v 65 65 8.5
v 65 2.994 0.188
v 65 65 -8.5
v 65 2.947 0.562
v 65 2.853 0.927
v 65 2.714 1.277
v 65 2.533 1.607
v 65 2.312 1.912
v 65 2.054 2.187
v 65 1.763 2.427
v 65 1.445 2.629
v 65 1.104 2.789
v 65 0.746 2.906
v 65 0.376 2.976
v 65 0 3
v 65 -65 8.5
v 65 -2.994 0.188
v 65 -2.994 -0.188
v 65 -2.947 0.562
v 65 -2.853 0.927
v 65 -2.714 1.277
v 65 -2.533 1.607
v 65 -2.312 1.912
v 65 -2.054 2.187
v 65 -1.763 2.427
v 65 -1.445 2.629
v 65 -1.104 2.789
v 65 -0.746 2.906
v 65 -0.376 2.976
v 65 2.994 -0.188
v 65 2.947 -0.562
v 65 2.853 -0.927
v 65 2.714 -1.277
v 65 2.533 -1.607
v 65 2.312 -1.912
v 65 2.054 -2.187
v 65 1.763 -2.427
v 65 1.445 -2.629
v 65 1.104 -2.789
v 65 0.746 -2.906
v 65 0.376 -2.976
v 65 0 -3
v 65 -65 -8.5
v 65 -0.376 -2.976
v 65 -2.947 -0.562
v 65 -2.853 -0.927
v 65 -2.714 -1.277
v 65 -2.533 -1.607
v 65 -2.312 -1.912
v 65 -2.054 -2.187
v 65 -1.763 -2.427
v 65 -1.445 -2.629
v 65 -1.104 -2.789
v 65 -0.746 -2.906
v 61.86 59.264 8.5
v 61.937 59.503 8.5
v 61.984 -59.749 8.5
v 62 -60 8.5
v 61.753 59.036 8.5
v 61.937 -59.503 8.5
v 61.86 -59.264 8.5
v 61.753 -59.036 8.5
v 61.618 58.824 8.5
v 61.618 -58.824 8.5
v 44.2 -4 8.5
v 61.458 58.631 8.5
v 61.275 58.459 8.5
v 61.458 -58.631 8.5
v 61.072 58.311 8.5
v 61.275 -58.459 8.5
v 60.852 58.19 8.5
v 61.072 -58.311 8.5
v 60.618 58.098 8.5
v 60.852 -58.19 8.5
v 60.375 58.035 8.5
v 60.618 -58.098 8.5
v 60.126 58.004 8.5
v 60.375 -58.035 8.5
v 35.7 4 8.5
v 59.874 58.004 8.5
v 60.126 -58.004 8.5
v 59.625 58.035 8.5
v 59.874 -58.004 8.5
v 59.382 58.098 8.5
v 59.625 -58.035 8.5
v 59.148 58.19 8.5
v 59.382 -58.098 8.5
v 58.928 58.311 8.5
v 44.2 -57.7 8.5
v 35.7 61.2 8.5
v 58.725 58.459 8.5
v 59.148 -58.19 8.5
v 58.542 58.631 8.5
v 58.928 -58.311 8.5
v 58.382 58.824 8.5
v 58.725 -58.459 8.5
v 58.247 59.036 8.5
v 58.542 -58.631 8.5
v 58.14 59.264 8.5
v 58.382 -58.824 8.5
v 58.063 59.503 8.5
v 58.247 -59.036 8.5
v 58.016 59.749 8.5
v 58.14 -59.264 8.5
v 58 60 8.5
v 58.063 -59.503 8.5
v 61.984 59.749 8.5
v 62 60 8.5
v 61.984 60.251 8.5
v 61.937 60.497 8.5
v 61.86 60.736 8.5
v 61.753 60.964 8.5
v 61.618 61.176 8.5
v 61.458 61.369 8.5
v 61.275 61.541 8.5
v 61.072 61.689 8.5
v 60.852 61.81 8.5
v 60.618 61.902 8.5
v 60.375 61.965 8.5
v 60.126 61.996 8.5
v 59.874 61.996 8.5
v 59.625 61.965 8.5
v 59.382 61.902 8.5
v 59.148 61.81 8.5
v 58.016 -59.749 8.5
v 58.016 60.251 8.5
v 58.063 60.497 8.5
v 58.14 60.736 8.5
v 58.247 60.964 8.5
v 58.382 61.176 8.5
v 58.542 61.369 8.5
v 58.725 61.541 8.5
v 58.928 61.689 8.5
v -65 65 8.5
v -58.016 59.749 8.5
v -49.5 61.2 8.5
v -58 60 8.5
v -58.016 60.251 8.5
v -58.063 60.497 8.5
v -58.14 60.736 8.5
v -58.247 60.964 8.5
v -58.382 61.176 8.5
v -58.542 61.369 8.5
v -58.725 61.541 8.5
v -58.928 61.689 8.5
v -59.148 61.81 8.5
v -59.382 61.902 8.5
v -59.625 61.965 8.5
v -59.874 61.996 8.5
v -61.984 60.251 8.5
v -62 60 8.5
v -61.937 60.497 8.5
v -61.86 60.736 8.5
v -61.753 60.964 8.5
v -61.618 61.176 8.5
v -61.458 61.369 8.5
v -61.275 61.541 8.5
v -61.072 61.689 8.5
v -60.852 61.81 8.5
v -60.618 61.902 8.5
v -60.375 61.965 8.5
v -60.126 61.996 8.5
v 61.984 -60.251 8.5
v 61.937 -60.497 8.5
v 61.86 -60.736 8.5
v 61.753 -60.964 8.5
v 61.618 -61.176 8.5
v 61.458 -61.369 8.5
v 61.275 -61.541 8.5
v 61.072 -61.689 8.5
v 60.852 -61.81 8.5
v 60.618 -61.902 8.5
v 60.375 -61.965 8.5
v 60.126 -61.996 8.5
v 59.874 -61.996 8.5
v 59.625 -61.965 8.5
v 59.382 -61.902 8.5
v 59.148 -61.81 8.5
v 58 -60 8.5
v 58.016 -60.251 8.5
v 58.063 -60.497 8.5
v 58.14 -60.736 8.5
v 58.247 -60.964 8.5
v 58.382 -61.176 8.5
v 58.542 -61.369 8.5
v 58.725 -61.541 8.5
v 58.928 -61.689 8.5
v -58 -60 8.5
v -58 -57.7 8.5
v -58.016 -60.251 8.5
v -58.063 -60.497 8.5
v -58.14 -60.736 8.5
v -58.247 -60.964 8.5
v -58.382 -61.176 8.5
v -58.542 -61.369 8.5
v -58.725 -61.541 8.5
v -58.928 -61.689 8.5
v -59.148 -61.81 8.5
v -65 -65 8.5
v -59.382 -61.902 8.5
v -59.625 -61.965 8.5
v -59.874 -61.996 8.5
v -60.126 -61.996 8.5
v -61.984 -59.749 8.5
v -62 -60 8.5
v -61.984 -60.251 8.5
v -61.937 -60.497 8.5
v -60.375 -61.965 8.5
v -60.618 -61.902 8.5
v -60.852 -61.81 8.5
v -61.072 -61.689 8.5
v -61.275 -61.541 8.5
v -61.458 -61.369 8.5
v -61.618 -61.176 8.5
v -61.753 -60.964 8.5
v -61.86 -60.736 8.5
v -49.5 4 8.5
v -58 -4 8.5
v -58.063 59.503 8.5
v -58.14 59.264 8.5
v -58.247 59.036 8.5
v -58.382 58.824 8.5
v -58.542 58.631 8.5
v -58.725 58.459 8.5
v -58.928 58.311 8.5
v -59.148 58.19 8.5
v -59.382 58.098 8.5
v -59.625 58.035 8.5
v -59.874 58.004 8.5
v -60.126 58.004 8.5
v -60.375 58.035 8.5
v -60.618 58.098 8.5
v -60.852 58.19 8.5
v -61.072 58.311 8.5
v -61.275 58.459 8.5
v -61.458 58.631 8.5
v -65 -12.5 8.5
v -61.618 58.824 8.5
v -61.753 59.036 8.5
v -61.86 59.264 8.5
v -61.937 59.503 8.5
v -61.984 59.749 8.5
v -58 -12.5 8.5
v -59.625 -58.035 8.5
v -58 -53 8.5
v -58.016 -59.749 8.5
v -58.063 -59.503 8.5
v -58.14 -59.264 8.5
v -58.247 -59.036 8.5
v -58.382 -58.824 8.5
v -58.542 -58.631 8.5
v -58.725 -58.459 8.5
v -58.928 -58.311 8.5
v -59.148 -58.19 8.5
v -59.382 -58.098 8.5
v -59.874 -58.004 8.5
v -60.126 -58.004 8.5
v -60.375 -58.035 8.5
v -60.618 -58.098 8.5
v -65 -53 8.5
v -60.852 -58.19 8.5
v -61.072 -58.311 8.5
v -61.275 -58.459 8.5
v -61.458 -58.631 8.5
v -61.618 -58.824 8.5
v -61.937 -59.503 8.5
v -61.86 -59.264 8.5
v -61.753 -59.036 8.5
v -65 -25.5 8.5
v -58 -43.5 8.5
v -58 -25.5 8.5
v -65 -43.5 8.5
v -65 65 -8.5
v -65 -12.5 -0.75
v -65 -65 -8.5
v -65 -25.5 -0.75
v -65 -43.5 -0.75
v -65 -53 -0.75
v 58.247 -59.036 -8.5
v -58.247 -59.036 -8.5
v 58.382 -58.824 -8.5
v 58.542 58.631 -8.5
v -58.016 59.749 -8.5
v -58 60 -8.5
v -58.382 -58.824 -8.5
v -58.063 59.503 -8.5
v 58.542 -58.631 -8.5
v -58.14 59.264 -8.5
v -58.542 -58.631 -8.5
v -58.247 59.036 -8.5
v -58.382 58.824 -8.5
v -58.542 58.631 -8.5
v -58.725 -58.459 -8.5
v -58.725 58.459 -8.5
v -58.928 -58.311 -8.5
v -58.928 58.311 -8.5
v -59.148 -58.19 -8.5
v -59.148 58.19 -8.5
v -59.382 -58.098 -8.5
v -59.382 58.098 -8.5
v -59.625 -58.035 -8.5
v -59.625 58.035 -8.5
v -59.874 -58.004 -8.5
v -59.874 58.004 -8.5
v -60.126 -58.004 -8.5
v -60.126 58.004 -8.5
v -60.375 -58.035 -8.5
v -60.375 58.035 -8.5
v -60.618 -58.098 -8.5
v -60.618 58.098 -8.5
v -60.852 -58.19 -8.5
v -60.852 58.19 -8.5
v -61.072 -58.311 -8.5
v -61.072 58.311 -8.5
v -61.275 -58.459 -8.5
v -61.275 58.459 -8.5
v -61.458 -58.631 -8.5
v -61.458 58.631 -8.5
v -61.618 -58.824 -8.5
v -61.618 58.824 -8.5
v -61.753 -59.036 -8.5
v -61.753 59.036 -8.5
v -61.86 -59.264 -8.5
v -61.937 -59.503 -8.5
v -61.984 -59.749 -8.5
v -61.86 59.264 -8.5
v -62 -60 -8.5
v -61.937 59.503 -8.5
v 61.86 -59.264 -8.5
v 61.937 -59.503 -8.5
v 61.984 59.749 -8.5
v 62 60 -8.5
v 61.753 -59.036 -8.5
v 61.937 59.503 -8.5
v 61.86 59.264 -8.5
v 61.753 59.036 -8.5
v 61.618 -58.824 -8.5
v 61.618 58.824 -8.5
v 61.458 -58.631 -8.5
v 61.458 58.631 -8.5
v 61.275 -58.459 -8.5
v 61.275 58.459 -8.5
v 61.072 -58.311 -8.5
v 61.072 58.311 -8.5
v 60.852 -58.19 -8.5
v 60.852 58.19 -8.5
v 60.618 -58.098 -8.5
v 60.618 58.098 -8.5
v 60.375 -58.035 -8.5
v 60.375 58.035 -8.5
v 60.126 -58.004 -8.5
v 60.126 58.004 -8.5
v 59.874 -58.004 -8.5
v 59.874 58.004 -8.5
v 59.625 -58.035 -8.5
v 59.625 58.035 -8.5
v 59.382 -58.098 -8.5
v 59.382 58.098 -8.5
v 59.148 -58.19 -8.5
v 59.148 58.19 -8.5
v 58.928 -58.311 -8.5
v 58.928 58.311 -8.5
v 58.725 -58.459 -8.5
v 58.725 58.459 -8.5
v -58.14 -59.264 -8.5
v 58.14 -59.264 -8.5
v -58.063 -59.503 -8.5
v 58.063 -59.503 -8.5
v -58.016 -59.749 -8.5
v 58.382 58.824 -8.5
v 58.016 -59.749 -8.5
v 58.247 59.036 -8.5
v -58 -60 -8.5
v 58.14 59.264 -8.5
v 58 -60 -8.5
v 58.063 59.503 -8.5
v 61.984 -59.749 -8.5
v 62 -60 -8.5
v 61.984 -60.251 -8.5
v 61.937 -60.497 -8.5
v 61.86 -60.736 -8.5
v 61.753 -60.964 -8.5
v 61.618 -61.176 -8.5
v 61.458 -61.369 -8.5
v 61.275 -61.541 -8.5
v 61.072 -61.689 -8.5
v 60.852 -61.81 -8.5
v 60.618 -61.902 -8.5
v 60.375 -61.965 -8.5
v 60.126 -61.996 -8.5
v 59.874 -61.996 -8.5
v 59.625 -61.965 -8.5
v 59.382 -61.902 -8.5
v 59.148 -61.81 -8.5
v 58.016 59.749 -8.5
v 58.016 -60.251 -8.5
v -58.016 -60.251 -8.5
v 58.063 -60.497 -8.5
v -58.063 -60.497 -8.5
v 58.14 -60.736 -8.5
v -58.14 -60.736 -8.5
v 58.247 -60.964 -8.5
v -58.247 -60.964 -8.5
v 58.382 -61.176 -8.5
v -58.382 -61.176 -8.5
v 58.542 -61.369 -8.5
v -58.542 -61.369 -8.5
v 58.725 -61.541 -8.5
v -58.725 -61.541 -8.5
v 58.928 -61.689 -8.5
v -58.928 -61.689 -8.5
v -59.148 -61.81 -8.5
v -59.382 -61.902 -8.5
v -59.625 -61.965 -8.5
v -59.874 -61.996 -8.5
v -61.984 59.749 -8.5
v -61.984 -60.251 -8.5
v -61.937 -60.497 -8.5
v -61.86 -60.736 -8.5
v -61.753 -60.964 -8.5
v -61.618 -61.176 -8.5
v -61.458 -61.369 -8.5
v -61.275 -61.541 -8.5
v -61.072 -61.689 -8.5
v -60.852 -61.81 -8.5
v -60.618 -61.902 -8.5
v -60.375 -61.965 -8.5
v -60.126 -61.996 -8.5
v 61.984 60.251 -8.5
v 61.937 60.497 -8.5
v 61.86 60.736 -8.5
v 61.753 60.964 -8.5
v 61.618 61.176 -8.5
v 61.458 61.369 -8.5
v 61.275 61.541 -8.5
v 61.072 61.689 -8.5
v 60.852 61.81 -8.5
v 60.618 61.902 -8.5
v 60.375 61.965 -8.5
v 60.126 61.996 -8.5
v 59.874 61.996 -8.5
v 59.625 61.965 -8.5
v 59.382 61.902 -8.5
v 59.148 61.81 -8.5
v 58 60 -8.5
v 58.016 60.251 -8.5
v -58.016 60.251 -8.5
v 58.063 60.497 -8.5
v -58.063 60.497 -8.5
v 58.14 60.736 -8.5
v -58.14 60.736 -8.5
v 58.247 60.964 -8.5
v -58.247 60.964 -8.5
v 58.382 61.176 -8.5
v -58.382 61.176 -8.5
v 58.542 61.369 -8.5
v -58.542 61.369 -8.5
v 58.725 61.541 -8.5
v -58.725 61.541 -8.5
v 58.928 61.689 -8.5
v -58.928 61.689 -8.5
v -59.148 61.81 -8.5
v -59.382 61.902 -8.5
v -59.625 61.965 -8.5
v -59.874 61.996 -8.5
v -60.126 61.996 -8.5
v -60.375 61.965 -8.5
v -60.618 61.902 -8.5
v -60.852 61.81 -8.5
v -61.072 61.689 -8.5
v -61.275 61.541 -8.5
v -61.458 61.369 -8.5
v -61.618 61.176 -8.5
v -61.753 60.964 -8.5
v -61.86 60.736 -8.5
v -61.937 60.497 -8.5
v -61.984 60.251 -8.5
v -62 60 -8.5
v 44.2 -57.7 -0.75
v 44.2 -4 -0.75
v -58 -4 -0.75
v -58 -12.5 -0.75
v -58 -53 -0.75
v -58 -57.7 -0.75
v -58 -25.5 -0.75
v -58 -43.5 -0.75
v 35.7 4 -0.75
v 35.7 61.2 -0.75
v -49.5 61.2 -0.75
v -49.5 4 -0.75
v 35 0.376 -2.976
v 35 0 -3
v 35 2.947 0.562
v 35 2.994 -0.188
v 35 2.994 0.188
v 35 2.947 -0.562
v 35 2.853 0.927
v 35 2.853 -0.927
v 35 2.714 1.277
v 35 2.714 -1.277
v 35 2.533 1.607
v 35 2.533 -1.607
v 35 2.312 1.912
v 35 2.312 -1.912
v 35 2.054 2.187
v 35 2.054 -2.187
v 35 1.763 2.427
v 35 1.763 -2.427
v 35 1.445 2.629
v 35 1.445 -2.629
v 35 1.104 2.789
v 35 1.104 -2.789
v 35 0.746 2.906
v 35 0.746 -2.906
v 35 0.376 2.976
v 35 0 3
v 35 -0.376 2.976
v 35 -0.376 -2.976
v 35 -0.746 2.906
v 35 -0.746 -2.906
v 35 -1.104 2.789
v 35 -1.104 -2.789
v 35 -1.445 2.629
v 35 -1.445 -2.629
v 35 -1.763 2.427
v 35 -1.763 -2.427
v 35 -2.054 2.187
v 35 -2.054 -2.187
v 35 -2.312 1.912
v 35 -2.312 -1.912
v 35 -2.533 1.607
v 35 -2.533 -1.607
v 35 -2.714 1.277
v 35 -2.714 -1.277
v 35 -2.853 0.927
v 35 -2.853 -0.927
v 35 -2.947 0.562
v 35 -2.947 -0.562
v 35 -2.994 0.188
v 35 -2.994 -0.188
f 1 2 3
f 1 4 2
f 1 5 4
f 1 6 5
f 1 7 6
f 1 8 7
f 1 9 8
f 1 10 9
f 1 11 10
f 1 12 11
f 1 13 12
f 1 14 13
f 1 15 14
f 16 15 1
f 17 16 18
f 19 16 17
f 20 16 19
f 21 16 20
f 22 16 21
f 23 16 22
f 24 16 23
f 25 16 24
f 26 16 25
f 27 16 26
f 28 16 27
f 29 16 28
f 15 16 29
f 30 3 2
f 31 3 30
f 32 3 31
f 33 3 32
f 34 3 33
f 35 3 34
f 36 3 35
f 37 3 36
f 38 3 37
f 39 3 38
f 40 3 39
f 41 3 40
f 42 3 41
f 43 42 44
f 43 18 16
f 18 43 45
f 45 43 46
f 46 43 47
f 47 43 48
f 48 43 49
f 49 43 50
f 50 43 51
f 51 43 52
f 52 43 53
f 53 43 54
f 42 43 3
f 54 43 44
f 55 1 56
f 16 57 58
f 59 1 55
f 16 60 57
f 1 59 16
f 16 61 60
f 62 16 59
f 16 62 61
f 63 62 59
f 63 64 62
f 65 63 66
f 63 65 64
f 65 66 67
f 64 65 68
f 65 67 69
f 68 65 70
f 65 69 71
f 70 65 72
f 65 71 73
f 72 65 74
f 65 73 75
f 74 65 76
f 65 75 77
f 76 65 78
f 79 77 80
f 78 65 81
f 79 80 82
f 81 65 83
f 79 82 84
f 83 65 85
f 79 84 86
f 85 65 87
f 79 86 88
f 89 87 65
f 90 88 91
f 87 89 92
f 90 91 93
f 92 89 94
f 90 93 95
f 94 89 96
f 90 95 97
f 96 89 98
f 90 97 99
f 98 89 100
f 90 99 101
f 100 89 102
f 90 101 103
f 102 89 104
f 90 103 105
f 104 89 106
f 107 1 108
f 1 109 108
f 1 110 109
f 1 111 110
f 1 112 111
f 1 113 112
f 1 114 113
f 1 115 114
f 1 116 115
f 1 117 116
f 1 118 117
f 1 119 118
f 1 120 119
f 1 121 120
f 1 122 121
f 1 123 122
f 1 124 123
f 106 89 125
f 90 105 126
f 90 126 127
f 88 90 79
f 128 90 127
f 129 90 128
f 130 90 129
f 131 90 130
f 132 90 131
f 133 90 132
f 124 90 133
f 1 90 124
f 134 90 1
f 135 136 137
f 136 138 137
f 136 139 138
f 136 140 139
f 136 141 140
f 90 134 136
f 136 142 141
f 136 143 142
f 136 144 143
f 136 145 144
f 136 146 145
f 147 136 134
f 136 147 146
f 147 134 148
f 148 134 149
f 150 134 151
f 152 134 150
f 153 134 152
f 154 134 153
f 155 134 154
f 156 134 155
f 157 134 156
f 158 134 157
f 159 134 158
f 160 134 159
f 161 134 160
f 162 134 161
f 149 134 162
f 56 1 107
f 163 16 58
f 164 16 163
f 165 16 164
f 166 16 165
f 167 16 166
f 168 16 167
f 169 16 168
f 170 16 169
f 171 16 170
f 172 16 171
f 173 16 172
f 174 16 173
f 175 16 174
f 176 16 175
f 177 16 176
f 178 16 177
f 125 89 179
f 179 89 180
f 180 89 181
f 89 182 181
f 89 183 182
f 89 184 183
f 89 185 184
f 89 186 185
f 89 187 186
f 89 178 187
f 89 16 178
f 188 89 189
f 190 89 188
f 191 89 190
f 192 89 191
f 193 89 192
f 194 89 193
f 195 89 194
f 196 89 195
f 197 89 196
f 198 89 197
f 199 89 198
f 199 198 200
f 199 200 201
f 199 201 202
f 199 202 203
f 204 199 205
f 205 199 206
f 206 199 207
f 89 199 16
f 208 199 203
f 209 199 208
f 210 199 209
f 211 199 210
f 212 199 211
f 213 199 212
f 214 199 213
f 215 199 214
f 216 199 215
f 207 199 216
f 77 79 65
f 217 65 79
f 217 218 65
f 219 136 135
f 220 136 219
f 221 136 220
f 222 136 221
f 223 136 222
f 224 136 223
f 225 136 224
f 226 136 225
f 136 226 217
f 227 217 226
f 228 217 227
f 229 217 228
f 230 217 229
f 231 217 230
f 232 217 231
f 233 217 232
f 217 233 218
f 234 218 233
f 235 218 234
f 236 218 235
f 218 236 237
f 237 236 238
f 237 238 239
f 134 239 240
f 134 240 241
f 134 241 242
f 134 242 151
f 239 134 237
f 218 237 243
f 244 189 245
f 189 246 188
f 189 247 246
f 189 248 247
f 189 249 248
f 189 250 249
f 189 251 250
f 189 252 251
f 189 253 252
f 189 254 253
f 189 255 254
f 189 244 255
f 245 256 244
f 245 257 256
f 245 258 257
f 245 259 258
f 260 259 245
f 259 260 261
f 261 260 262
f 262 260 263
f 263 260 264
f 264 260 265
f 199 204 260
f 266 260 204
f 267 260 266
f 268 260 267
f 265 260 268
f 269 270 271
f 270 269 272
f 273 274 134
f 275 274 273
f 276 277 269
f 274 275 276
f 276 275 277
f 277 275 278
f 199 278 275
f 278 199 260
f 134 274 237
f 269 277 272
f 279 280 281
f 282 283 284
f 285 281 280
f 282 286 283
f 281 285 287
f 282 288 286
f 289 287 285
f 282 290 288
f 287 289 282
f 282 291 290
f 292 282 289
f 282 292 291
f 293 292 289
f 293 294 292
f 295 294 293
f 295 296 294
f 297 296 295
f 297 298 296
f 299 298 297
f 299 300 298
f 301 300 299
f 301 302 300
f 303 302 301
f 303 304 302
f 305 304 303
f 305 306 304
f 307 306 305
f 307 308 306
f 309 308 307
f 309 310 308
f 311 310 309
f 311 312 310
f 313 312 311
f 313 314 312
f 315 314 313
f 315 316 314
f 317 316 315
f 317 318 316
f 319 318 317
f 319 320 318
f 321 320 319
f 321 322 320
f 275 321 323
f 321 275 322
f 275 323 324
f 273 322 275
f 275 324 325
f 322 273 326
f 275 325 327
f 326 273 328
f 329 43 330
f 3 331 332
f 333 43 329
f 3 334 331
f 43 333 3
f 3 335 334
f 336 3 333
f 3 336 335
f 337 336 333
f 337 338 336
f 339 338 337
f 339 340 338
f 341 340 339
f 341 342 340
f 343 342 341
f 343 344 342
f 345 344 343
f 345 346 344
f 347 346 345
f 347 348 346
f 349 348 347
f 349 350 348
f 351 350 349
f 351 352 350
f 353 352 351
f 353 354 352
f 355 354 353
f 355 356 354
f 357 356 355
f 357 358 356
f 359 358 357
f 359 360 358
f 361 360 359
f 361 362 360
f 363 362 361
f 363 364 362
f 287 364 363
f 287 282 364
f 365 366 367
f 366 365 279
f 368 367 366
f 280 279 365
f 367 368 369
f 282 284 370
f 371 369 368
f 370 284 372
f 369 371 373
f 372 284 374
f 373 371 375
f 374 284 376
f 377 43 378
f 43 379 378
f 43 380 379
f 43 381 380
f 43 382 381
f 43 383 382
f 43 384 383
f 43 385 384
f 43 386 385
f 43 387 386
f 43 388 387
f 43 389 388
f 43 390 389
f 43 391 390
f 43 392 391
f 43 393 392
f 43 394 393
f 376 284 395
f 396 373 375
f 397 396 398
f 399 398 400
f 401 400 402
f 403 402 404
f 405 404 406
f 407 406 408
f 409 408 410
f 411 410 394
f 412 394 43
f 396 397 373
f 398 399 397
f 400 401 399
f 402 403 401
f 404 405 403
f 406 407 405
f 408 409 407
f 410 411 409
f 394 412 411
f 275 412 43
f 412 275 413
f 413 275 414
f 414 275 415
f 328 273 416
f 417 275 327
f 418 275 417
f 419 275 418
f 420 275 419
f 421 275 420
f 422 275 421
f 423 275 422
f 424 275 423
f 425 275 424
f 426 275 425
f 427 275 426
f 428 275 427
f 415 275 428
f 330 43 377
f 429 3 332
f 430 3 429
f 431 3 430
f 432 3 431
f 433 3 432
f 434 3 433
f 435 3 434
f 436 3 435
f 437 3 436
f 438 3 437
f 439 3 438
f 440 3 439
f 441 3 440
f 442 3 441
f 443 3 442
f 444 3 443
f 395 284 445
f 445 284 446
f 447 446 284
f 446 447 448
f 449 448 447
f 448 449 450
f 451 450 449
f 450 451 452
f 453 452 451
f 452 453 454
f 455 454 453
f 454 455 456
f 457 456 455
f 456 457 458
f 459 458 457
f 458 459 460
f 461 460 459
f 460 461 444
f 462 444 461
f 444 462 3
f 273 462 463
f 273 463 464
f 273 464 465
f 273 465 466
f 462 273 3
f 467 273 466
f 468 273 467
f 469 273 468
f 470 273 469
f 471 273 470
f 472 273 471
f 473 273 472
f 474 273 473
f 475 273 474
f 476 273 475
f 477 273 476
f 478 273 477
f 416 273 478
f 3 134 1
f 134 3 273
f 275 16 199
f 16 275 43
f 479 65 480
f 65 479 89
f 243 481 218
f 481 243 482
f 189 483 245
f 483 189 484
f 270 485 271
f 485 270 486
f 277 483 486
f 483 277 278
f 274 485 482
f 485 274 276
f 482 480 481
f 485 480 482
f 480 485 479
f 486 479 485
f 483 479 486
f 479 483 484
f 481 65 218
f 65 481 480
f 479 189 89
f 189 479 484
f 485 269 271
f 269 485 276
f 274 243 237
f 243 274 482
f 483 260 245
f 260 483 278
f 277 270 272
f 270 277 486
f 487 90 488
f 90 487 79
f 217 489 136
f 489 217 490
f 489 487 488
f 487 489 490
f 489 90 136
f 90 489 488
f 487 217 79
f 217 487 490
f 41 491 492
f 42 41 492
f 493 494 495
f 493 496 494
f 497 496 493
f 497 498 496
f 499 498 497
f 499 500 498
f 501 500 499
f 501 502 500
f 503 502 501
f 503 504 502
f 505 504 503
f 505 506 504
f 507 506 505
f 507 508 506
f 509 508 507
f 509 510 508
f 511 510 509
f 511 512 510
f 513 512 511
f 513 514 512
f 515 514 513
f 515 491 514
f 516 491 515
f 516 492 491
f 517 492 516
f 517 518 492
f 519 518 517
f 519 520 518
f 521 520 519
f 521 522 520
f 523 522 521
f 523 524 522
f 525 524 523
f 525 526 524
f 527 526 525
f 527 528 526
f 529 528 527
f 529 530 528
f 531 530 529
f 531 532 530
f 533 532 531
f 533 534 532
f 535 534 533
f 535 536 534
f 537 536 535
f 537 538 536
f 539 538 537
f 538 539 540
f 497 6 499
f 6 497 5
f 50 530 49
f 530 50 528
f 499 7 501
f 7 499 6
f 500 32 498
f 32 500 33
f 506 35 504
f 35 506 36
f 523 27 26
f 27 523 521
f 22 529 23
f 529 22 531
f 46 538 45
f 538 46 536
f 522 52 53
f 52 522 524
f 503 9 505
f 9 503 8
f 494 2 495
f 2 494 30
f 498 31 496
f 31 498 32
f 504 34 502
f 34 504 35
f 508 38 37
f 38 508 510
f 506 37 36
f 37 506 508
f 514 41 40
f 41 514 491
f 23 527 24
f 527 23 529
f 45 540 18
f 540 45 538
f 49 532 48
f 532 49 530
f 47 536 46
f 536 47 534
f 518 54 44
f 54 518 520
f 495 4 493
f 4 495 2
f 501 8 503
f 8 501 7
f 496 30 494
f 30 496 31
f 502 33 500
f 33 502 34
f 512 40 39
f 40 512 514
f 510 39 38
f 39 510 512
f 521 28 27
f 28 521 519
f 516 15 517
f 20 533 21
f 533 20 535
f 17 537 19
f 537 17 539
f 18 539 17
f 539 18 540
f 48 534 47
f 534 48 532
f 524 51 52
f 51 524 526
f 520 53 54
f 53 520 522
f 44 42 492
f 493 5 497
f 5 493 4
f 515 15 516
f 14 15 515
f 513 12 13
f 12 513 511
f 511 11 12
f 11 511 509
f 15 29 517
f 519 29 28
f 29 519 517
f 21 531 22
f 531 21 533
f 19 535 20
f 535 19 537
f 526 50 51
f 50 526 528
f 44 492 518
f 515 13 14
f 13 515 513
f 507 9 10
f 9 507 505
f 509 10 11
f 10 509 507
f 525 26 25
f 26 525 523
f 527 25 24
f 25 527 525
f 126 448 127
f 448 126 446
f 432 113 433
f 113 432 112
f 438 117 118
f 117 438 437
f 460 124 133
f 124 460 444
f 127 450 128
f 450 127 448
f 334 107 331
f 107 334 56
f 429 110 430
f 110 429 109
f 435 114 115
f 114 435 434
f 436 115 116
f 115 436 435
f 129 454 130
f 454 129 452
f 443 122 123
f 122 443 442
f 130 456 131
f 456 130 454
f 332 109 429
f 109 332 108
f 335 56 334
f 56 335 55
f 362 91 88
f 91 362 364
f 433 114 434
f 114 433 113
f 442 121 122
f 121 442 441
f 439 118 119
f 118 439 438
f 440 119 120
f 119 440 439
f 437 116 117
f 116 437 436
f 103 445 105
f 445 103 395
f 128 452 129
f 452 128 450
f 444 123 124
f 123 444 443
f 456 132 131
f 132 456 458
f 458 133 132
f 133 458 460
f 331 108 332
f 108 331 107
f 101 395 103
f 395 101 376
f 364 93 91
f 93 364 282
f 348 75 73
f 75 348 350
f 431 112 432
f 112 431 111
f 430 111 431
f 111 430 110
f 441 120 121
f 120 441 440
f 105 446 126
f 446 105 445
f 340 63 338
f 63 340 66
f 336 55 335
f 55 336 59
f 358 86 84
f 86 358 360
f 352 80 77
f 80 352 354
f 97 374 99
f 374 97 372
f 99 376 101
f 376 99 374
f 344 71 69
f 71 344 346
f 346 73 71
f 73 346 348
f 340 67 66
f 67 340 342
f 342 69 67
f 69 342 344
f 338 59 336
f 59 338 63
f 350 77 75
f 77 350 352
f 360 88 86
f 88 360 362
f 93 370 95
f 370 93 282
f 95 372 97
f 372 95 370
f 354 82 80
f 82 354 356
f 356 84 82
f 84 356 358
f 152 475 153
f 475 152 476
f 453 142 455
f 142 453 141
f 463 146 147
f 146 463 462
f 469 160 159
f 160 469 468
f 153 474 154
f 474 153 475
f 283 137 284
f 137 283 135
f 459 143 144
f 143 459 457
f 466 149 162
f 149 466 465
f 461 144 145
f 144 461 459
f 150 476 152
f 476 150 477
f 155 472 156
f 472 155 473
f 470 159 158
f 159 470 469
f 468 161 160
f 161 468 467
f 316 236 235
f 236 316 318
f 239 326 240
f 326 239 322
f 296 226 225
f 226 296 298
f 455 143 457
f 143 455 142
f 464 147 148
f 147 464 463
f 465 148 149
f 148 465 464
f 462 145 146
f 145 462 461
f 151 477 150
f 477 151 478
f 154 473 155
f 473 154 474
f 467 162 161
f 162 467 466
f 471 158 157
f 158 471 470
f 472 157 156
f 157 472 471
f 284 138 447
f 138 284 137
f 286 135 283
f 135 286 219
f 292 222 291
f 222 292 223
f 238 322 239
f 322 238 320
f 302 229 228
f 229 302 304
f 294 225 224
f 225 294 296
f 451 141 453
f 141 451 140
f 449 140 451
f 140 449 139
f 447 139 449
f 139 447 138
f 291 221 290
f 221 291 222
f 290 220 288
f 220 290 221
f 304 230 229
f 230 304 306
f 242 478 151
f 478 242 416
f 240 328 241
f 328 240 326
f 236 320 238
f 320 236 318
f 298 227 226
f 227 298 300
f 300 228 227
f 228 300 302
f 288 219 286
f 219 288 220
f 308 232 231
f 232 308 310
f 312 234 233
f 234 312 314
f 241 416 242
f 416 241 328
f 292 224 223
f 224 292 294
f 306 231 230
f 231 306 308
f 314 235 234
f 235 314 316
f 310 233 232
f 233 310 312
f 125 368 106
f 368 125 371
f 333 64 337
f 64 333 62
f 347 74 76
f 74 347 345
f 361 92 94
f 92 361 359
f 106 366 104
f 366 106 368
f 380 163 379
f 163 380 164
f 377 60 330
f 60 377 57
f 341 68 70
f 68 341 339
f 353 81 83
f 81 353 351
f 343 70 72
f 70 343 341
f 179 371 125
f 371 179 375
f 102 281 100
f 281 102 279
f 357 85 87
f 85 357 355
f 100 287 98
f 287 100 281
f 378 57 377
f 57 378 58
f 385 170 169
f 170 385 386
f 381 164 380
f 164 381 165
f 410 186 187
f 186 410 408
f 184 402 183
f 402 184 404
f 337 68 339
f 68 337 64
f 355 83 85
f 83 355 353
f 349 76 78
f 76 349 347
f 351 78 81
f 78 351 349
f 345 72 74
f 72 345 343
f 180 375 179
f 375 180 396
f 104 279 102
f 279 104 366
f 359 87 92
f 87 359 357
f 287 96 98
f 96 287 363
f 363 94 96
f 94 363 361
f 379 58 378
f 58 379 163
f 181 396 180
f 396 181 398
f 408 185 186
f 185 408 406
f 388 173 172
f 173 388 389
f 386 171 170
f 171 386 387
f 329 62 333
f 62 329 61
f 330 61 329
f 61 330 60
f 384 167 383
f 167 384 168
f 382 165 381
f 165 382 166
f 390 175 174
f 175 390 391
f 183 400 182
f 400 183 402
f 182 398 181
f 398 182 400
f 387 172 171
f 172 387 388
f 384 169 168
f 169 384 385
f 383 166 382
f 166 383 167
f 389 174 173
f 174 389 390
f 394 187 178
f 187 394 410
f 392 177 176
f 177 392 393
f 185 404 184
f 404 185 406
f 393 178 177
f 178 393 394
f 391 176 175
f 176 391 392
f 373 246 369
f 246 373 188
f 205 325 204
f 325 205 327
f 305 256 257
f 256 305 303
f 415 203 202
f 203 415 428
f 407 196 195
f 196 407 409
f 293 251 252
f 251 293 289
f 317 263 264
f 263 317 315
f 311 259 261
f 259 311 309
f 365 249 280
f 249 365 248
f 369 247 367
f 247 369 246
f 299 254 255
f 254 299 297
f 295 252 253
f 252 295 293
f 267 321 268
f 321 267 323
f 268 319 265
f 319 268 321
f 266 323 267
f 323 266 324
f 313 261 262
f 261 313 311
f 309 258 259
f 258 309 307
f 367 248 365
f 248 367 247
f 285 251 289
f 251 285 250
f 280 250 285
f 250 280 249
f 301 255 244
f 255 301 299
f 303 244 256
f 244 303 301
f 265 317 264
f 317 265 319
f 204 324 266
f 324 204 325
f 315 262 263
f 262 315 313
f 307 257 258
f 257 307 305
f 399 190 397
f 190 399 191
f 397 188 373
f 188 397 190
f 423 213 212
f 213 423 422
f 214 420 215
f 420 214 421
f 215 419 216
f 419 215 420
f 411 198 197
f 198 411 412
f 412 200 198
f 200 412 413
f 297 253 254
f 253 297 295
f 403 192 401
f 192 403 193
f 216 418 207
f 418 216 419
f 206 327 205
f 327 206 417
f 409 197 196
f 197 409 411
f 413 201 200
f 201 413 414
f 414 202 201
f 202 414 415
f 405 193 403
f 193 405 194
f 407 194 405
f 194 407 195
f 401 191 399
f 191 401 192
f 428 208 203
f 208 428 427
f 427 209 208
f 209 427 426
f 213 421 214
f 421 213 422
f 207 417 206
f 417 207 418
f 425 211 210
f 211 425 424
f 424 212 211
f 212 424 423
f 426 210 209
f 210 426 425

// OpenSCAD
//Unit: millimeter
//Arduino board
ABwidth = 53.7;
ABlength = 102.2;
ABheight = 10.0;
ABplugin1 = 2.1;
ABplugin2 = 7.0;
ABplugin2height = 10.0;
ABgap1=8.5;
ABgap2=13.0;
ABgap3=18.0;
ABgap4=9.5;

//Bread Board
BBlength = 85.2;
BBwidth = 57.2;
BBheight = 10.0;

//RGB
RGBlength = 20.44;
RGBdiameter = 2.9;
RGBA = 12.5;
RGBB = 1.0;


//Upper Base
UBlength = 130.0; //length is x-axis
UBwidth = 130.0; //y-axis
UBheight = 17.0;
UBgapCam = 8.0;
UBgap1 = (UBlength - UBgapCam - ABwidth - BBwidth) / 2;
UBholeGap = 7.0;

//Camera Attachment
CAdiameter = 6.0;
CAradius = CAdiameter/2;
CAlength = 30.0;

//Lower Base
LBlength = UBlength;
LBwidth = UBwidth;
LBheight = 7.0;
LBgap1 = 30.0;
LBtranslate = -60.0;

//Front Wall
FWlength = LBwidth; //y-axis
FWwidth = 25.0;  //x-axis
FWheight = 30.0;
FWhole = 25.0;
FWgap1 = (FWlength - FWhole)/2;  //distance to the gap
FWgap2 = (FWlength - RGBlength)/2;

//RGB
RGBlength = 20.44;
RGBdiameter = 2.9;
RGBA = 12.5;
RGBB = 1.0;

//RGB attachment
RAwidth = RGBlength; //y-axis
RAheight = 15.0;  //z-axis
RAdepth = 5.0; //x-axis

//battery hole
BAlength = 5.0; //y
BAheight = 20.0; //z
BAdepth = FWwidth;

//arms attachment
AAlength = 20.0;
AAwidth = 5.0; //y-axis
AAheight = 40.0;
AAdistance = 90.0;
AAtranslate = 30.0;
AAholeHeight = AAheight/2 - (AAtranslate - FWheight/2) + LBheight;

//Columns
Clength = 8.0; 
Cheight = UBheight/2+LBheight/2-LBtranslate+Clength*2;
Cdiameter = 4.0;
Cradius = 2.0;
CLockHeight = 1.5;
CLockDiameter = 8.0;
Cdistance = 5.0;  //the center of the hole
holeX = UBlength/2 - Cdistance;
holeY = UBwidth/2 - Cdistance;
holeZ = -(Cheight/2-Clength-UBheight/2);

//Back Wall
BWlength = FWlength;
BWwidth = 5.0;
BWheight = 30.0;

//Robot Servo
RSlength = 40.6;
RSwidth = 36.6;  //not the exact width
RSheight = 19.8;
RSdiameter = 4.0;
RSradius = RSdiameter/2;
RSdistance = (RSheight - 2*RSdiameter)/4;
RSA = 7.0;
RSB = 1.5;
RSC = 2.5;
RSD = 4.0;
RSE = 6.5;
RSF = 10.0;

//Servo Attachement
SAlength = 20.0;
SAwidth = RSwidth-RSC-RSD;
SAHwidth = RSF-RSE; //y
SAHlength = RSA;  //x
SAHheight = RSheight;


module cube_true(x, y, z){
    cube(size = [x, y, z], center = true);
}

module cylinder_base(x,y){
    cylinder(h=x,r=y,center=true,$fn=50);
}

module hole_base(x,y,z){
    translate([x,y,z])
    cylinder(h=Cheight,r=Cradius,center = true, $fn=50);
}

module servo_attach(){
    translate([RSlength/2+SAlength/2,LBwidth/2-SAwidth/2,LBtranslate+LBheight/2+RSheight/2]){
        difference(){
            cube_true(SAlength,SAwidth,RSheight);
            translate([-(SAlength/2-RSA/2), SAwidth/2-RSE/2,0]) cube_true(SAHlength,SAHwidth,SAHheight);
            //holes
            translate([-(SAlength/2-RSradius),0,RSheight/2-RSdistance-RSradius]){
                rotate([90,0,0]) cylinder_base(SAwidth,RSradius);
            }
            translate([-(SAlength/2-RSradius),0,-(RSheight/2-RSdistance-RSradius)]){
                rotate([90,0,0]) cylinder_base(SAwidth,RSradius);
            }
        }
    }
}


difference(){
    //combine upper and lower bases
        rotate([0,0,180])
        difference(){
            cube_true(UBlength,UBwidth,UBheight);
            //arduino board
            translate([UBlength/2-ABlength/2-ABplugin2, UBgapCam/2+ABwidth/2,UBheight/4]) cube_true(ABlength,ABwidth,ABheight);
            //plugin1
            translate([UBlength/2-ABplugin2/2, UBgapCam/2+ABgap1+ABgap2/2,UBheight/4]) cube_true(ABplugin2,ABgap2,ABplugin2height);
            //plugin2
            translate([UBlength/2-ABplugin2/2, UBgapCam/2+ABgap1+ABgap2+ABgap3+ABgap4/2,UBheight/4]) cube_true(ABplugin2,ABgap4,ABplugin2height);
            //bread board
            translate([UBlength/2-ABlength/2-ABplugin2,-(UBgapCam/2+BBwidth/2),UBheight/4]) cube_true(BBlength,BBwidth,BBheight);
            //camera attachment
            rotate([0,0,180])
            translate([UBlength/2-CAlength/2,0,0]){
                rotate([0,90,0]) cylinder_base(CAlength, CAradius);
            }
        }
    
    //holes
    hole_base(holeX,holeY,holeZ);
    hole_base(-holeX,holeY,holeZ);
    hole_base(holeX,-holeY,holeZ);
    hole_base(-holeX,-holeY,holeZ);
}
